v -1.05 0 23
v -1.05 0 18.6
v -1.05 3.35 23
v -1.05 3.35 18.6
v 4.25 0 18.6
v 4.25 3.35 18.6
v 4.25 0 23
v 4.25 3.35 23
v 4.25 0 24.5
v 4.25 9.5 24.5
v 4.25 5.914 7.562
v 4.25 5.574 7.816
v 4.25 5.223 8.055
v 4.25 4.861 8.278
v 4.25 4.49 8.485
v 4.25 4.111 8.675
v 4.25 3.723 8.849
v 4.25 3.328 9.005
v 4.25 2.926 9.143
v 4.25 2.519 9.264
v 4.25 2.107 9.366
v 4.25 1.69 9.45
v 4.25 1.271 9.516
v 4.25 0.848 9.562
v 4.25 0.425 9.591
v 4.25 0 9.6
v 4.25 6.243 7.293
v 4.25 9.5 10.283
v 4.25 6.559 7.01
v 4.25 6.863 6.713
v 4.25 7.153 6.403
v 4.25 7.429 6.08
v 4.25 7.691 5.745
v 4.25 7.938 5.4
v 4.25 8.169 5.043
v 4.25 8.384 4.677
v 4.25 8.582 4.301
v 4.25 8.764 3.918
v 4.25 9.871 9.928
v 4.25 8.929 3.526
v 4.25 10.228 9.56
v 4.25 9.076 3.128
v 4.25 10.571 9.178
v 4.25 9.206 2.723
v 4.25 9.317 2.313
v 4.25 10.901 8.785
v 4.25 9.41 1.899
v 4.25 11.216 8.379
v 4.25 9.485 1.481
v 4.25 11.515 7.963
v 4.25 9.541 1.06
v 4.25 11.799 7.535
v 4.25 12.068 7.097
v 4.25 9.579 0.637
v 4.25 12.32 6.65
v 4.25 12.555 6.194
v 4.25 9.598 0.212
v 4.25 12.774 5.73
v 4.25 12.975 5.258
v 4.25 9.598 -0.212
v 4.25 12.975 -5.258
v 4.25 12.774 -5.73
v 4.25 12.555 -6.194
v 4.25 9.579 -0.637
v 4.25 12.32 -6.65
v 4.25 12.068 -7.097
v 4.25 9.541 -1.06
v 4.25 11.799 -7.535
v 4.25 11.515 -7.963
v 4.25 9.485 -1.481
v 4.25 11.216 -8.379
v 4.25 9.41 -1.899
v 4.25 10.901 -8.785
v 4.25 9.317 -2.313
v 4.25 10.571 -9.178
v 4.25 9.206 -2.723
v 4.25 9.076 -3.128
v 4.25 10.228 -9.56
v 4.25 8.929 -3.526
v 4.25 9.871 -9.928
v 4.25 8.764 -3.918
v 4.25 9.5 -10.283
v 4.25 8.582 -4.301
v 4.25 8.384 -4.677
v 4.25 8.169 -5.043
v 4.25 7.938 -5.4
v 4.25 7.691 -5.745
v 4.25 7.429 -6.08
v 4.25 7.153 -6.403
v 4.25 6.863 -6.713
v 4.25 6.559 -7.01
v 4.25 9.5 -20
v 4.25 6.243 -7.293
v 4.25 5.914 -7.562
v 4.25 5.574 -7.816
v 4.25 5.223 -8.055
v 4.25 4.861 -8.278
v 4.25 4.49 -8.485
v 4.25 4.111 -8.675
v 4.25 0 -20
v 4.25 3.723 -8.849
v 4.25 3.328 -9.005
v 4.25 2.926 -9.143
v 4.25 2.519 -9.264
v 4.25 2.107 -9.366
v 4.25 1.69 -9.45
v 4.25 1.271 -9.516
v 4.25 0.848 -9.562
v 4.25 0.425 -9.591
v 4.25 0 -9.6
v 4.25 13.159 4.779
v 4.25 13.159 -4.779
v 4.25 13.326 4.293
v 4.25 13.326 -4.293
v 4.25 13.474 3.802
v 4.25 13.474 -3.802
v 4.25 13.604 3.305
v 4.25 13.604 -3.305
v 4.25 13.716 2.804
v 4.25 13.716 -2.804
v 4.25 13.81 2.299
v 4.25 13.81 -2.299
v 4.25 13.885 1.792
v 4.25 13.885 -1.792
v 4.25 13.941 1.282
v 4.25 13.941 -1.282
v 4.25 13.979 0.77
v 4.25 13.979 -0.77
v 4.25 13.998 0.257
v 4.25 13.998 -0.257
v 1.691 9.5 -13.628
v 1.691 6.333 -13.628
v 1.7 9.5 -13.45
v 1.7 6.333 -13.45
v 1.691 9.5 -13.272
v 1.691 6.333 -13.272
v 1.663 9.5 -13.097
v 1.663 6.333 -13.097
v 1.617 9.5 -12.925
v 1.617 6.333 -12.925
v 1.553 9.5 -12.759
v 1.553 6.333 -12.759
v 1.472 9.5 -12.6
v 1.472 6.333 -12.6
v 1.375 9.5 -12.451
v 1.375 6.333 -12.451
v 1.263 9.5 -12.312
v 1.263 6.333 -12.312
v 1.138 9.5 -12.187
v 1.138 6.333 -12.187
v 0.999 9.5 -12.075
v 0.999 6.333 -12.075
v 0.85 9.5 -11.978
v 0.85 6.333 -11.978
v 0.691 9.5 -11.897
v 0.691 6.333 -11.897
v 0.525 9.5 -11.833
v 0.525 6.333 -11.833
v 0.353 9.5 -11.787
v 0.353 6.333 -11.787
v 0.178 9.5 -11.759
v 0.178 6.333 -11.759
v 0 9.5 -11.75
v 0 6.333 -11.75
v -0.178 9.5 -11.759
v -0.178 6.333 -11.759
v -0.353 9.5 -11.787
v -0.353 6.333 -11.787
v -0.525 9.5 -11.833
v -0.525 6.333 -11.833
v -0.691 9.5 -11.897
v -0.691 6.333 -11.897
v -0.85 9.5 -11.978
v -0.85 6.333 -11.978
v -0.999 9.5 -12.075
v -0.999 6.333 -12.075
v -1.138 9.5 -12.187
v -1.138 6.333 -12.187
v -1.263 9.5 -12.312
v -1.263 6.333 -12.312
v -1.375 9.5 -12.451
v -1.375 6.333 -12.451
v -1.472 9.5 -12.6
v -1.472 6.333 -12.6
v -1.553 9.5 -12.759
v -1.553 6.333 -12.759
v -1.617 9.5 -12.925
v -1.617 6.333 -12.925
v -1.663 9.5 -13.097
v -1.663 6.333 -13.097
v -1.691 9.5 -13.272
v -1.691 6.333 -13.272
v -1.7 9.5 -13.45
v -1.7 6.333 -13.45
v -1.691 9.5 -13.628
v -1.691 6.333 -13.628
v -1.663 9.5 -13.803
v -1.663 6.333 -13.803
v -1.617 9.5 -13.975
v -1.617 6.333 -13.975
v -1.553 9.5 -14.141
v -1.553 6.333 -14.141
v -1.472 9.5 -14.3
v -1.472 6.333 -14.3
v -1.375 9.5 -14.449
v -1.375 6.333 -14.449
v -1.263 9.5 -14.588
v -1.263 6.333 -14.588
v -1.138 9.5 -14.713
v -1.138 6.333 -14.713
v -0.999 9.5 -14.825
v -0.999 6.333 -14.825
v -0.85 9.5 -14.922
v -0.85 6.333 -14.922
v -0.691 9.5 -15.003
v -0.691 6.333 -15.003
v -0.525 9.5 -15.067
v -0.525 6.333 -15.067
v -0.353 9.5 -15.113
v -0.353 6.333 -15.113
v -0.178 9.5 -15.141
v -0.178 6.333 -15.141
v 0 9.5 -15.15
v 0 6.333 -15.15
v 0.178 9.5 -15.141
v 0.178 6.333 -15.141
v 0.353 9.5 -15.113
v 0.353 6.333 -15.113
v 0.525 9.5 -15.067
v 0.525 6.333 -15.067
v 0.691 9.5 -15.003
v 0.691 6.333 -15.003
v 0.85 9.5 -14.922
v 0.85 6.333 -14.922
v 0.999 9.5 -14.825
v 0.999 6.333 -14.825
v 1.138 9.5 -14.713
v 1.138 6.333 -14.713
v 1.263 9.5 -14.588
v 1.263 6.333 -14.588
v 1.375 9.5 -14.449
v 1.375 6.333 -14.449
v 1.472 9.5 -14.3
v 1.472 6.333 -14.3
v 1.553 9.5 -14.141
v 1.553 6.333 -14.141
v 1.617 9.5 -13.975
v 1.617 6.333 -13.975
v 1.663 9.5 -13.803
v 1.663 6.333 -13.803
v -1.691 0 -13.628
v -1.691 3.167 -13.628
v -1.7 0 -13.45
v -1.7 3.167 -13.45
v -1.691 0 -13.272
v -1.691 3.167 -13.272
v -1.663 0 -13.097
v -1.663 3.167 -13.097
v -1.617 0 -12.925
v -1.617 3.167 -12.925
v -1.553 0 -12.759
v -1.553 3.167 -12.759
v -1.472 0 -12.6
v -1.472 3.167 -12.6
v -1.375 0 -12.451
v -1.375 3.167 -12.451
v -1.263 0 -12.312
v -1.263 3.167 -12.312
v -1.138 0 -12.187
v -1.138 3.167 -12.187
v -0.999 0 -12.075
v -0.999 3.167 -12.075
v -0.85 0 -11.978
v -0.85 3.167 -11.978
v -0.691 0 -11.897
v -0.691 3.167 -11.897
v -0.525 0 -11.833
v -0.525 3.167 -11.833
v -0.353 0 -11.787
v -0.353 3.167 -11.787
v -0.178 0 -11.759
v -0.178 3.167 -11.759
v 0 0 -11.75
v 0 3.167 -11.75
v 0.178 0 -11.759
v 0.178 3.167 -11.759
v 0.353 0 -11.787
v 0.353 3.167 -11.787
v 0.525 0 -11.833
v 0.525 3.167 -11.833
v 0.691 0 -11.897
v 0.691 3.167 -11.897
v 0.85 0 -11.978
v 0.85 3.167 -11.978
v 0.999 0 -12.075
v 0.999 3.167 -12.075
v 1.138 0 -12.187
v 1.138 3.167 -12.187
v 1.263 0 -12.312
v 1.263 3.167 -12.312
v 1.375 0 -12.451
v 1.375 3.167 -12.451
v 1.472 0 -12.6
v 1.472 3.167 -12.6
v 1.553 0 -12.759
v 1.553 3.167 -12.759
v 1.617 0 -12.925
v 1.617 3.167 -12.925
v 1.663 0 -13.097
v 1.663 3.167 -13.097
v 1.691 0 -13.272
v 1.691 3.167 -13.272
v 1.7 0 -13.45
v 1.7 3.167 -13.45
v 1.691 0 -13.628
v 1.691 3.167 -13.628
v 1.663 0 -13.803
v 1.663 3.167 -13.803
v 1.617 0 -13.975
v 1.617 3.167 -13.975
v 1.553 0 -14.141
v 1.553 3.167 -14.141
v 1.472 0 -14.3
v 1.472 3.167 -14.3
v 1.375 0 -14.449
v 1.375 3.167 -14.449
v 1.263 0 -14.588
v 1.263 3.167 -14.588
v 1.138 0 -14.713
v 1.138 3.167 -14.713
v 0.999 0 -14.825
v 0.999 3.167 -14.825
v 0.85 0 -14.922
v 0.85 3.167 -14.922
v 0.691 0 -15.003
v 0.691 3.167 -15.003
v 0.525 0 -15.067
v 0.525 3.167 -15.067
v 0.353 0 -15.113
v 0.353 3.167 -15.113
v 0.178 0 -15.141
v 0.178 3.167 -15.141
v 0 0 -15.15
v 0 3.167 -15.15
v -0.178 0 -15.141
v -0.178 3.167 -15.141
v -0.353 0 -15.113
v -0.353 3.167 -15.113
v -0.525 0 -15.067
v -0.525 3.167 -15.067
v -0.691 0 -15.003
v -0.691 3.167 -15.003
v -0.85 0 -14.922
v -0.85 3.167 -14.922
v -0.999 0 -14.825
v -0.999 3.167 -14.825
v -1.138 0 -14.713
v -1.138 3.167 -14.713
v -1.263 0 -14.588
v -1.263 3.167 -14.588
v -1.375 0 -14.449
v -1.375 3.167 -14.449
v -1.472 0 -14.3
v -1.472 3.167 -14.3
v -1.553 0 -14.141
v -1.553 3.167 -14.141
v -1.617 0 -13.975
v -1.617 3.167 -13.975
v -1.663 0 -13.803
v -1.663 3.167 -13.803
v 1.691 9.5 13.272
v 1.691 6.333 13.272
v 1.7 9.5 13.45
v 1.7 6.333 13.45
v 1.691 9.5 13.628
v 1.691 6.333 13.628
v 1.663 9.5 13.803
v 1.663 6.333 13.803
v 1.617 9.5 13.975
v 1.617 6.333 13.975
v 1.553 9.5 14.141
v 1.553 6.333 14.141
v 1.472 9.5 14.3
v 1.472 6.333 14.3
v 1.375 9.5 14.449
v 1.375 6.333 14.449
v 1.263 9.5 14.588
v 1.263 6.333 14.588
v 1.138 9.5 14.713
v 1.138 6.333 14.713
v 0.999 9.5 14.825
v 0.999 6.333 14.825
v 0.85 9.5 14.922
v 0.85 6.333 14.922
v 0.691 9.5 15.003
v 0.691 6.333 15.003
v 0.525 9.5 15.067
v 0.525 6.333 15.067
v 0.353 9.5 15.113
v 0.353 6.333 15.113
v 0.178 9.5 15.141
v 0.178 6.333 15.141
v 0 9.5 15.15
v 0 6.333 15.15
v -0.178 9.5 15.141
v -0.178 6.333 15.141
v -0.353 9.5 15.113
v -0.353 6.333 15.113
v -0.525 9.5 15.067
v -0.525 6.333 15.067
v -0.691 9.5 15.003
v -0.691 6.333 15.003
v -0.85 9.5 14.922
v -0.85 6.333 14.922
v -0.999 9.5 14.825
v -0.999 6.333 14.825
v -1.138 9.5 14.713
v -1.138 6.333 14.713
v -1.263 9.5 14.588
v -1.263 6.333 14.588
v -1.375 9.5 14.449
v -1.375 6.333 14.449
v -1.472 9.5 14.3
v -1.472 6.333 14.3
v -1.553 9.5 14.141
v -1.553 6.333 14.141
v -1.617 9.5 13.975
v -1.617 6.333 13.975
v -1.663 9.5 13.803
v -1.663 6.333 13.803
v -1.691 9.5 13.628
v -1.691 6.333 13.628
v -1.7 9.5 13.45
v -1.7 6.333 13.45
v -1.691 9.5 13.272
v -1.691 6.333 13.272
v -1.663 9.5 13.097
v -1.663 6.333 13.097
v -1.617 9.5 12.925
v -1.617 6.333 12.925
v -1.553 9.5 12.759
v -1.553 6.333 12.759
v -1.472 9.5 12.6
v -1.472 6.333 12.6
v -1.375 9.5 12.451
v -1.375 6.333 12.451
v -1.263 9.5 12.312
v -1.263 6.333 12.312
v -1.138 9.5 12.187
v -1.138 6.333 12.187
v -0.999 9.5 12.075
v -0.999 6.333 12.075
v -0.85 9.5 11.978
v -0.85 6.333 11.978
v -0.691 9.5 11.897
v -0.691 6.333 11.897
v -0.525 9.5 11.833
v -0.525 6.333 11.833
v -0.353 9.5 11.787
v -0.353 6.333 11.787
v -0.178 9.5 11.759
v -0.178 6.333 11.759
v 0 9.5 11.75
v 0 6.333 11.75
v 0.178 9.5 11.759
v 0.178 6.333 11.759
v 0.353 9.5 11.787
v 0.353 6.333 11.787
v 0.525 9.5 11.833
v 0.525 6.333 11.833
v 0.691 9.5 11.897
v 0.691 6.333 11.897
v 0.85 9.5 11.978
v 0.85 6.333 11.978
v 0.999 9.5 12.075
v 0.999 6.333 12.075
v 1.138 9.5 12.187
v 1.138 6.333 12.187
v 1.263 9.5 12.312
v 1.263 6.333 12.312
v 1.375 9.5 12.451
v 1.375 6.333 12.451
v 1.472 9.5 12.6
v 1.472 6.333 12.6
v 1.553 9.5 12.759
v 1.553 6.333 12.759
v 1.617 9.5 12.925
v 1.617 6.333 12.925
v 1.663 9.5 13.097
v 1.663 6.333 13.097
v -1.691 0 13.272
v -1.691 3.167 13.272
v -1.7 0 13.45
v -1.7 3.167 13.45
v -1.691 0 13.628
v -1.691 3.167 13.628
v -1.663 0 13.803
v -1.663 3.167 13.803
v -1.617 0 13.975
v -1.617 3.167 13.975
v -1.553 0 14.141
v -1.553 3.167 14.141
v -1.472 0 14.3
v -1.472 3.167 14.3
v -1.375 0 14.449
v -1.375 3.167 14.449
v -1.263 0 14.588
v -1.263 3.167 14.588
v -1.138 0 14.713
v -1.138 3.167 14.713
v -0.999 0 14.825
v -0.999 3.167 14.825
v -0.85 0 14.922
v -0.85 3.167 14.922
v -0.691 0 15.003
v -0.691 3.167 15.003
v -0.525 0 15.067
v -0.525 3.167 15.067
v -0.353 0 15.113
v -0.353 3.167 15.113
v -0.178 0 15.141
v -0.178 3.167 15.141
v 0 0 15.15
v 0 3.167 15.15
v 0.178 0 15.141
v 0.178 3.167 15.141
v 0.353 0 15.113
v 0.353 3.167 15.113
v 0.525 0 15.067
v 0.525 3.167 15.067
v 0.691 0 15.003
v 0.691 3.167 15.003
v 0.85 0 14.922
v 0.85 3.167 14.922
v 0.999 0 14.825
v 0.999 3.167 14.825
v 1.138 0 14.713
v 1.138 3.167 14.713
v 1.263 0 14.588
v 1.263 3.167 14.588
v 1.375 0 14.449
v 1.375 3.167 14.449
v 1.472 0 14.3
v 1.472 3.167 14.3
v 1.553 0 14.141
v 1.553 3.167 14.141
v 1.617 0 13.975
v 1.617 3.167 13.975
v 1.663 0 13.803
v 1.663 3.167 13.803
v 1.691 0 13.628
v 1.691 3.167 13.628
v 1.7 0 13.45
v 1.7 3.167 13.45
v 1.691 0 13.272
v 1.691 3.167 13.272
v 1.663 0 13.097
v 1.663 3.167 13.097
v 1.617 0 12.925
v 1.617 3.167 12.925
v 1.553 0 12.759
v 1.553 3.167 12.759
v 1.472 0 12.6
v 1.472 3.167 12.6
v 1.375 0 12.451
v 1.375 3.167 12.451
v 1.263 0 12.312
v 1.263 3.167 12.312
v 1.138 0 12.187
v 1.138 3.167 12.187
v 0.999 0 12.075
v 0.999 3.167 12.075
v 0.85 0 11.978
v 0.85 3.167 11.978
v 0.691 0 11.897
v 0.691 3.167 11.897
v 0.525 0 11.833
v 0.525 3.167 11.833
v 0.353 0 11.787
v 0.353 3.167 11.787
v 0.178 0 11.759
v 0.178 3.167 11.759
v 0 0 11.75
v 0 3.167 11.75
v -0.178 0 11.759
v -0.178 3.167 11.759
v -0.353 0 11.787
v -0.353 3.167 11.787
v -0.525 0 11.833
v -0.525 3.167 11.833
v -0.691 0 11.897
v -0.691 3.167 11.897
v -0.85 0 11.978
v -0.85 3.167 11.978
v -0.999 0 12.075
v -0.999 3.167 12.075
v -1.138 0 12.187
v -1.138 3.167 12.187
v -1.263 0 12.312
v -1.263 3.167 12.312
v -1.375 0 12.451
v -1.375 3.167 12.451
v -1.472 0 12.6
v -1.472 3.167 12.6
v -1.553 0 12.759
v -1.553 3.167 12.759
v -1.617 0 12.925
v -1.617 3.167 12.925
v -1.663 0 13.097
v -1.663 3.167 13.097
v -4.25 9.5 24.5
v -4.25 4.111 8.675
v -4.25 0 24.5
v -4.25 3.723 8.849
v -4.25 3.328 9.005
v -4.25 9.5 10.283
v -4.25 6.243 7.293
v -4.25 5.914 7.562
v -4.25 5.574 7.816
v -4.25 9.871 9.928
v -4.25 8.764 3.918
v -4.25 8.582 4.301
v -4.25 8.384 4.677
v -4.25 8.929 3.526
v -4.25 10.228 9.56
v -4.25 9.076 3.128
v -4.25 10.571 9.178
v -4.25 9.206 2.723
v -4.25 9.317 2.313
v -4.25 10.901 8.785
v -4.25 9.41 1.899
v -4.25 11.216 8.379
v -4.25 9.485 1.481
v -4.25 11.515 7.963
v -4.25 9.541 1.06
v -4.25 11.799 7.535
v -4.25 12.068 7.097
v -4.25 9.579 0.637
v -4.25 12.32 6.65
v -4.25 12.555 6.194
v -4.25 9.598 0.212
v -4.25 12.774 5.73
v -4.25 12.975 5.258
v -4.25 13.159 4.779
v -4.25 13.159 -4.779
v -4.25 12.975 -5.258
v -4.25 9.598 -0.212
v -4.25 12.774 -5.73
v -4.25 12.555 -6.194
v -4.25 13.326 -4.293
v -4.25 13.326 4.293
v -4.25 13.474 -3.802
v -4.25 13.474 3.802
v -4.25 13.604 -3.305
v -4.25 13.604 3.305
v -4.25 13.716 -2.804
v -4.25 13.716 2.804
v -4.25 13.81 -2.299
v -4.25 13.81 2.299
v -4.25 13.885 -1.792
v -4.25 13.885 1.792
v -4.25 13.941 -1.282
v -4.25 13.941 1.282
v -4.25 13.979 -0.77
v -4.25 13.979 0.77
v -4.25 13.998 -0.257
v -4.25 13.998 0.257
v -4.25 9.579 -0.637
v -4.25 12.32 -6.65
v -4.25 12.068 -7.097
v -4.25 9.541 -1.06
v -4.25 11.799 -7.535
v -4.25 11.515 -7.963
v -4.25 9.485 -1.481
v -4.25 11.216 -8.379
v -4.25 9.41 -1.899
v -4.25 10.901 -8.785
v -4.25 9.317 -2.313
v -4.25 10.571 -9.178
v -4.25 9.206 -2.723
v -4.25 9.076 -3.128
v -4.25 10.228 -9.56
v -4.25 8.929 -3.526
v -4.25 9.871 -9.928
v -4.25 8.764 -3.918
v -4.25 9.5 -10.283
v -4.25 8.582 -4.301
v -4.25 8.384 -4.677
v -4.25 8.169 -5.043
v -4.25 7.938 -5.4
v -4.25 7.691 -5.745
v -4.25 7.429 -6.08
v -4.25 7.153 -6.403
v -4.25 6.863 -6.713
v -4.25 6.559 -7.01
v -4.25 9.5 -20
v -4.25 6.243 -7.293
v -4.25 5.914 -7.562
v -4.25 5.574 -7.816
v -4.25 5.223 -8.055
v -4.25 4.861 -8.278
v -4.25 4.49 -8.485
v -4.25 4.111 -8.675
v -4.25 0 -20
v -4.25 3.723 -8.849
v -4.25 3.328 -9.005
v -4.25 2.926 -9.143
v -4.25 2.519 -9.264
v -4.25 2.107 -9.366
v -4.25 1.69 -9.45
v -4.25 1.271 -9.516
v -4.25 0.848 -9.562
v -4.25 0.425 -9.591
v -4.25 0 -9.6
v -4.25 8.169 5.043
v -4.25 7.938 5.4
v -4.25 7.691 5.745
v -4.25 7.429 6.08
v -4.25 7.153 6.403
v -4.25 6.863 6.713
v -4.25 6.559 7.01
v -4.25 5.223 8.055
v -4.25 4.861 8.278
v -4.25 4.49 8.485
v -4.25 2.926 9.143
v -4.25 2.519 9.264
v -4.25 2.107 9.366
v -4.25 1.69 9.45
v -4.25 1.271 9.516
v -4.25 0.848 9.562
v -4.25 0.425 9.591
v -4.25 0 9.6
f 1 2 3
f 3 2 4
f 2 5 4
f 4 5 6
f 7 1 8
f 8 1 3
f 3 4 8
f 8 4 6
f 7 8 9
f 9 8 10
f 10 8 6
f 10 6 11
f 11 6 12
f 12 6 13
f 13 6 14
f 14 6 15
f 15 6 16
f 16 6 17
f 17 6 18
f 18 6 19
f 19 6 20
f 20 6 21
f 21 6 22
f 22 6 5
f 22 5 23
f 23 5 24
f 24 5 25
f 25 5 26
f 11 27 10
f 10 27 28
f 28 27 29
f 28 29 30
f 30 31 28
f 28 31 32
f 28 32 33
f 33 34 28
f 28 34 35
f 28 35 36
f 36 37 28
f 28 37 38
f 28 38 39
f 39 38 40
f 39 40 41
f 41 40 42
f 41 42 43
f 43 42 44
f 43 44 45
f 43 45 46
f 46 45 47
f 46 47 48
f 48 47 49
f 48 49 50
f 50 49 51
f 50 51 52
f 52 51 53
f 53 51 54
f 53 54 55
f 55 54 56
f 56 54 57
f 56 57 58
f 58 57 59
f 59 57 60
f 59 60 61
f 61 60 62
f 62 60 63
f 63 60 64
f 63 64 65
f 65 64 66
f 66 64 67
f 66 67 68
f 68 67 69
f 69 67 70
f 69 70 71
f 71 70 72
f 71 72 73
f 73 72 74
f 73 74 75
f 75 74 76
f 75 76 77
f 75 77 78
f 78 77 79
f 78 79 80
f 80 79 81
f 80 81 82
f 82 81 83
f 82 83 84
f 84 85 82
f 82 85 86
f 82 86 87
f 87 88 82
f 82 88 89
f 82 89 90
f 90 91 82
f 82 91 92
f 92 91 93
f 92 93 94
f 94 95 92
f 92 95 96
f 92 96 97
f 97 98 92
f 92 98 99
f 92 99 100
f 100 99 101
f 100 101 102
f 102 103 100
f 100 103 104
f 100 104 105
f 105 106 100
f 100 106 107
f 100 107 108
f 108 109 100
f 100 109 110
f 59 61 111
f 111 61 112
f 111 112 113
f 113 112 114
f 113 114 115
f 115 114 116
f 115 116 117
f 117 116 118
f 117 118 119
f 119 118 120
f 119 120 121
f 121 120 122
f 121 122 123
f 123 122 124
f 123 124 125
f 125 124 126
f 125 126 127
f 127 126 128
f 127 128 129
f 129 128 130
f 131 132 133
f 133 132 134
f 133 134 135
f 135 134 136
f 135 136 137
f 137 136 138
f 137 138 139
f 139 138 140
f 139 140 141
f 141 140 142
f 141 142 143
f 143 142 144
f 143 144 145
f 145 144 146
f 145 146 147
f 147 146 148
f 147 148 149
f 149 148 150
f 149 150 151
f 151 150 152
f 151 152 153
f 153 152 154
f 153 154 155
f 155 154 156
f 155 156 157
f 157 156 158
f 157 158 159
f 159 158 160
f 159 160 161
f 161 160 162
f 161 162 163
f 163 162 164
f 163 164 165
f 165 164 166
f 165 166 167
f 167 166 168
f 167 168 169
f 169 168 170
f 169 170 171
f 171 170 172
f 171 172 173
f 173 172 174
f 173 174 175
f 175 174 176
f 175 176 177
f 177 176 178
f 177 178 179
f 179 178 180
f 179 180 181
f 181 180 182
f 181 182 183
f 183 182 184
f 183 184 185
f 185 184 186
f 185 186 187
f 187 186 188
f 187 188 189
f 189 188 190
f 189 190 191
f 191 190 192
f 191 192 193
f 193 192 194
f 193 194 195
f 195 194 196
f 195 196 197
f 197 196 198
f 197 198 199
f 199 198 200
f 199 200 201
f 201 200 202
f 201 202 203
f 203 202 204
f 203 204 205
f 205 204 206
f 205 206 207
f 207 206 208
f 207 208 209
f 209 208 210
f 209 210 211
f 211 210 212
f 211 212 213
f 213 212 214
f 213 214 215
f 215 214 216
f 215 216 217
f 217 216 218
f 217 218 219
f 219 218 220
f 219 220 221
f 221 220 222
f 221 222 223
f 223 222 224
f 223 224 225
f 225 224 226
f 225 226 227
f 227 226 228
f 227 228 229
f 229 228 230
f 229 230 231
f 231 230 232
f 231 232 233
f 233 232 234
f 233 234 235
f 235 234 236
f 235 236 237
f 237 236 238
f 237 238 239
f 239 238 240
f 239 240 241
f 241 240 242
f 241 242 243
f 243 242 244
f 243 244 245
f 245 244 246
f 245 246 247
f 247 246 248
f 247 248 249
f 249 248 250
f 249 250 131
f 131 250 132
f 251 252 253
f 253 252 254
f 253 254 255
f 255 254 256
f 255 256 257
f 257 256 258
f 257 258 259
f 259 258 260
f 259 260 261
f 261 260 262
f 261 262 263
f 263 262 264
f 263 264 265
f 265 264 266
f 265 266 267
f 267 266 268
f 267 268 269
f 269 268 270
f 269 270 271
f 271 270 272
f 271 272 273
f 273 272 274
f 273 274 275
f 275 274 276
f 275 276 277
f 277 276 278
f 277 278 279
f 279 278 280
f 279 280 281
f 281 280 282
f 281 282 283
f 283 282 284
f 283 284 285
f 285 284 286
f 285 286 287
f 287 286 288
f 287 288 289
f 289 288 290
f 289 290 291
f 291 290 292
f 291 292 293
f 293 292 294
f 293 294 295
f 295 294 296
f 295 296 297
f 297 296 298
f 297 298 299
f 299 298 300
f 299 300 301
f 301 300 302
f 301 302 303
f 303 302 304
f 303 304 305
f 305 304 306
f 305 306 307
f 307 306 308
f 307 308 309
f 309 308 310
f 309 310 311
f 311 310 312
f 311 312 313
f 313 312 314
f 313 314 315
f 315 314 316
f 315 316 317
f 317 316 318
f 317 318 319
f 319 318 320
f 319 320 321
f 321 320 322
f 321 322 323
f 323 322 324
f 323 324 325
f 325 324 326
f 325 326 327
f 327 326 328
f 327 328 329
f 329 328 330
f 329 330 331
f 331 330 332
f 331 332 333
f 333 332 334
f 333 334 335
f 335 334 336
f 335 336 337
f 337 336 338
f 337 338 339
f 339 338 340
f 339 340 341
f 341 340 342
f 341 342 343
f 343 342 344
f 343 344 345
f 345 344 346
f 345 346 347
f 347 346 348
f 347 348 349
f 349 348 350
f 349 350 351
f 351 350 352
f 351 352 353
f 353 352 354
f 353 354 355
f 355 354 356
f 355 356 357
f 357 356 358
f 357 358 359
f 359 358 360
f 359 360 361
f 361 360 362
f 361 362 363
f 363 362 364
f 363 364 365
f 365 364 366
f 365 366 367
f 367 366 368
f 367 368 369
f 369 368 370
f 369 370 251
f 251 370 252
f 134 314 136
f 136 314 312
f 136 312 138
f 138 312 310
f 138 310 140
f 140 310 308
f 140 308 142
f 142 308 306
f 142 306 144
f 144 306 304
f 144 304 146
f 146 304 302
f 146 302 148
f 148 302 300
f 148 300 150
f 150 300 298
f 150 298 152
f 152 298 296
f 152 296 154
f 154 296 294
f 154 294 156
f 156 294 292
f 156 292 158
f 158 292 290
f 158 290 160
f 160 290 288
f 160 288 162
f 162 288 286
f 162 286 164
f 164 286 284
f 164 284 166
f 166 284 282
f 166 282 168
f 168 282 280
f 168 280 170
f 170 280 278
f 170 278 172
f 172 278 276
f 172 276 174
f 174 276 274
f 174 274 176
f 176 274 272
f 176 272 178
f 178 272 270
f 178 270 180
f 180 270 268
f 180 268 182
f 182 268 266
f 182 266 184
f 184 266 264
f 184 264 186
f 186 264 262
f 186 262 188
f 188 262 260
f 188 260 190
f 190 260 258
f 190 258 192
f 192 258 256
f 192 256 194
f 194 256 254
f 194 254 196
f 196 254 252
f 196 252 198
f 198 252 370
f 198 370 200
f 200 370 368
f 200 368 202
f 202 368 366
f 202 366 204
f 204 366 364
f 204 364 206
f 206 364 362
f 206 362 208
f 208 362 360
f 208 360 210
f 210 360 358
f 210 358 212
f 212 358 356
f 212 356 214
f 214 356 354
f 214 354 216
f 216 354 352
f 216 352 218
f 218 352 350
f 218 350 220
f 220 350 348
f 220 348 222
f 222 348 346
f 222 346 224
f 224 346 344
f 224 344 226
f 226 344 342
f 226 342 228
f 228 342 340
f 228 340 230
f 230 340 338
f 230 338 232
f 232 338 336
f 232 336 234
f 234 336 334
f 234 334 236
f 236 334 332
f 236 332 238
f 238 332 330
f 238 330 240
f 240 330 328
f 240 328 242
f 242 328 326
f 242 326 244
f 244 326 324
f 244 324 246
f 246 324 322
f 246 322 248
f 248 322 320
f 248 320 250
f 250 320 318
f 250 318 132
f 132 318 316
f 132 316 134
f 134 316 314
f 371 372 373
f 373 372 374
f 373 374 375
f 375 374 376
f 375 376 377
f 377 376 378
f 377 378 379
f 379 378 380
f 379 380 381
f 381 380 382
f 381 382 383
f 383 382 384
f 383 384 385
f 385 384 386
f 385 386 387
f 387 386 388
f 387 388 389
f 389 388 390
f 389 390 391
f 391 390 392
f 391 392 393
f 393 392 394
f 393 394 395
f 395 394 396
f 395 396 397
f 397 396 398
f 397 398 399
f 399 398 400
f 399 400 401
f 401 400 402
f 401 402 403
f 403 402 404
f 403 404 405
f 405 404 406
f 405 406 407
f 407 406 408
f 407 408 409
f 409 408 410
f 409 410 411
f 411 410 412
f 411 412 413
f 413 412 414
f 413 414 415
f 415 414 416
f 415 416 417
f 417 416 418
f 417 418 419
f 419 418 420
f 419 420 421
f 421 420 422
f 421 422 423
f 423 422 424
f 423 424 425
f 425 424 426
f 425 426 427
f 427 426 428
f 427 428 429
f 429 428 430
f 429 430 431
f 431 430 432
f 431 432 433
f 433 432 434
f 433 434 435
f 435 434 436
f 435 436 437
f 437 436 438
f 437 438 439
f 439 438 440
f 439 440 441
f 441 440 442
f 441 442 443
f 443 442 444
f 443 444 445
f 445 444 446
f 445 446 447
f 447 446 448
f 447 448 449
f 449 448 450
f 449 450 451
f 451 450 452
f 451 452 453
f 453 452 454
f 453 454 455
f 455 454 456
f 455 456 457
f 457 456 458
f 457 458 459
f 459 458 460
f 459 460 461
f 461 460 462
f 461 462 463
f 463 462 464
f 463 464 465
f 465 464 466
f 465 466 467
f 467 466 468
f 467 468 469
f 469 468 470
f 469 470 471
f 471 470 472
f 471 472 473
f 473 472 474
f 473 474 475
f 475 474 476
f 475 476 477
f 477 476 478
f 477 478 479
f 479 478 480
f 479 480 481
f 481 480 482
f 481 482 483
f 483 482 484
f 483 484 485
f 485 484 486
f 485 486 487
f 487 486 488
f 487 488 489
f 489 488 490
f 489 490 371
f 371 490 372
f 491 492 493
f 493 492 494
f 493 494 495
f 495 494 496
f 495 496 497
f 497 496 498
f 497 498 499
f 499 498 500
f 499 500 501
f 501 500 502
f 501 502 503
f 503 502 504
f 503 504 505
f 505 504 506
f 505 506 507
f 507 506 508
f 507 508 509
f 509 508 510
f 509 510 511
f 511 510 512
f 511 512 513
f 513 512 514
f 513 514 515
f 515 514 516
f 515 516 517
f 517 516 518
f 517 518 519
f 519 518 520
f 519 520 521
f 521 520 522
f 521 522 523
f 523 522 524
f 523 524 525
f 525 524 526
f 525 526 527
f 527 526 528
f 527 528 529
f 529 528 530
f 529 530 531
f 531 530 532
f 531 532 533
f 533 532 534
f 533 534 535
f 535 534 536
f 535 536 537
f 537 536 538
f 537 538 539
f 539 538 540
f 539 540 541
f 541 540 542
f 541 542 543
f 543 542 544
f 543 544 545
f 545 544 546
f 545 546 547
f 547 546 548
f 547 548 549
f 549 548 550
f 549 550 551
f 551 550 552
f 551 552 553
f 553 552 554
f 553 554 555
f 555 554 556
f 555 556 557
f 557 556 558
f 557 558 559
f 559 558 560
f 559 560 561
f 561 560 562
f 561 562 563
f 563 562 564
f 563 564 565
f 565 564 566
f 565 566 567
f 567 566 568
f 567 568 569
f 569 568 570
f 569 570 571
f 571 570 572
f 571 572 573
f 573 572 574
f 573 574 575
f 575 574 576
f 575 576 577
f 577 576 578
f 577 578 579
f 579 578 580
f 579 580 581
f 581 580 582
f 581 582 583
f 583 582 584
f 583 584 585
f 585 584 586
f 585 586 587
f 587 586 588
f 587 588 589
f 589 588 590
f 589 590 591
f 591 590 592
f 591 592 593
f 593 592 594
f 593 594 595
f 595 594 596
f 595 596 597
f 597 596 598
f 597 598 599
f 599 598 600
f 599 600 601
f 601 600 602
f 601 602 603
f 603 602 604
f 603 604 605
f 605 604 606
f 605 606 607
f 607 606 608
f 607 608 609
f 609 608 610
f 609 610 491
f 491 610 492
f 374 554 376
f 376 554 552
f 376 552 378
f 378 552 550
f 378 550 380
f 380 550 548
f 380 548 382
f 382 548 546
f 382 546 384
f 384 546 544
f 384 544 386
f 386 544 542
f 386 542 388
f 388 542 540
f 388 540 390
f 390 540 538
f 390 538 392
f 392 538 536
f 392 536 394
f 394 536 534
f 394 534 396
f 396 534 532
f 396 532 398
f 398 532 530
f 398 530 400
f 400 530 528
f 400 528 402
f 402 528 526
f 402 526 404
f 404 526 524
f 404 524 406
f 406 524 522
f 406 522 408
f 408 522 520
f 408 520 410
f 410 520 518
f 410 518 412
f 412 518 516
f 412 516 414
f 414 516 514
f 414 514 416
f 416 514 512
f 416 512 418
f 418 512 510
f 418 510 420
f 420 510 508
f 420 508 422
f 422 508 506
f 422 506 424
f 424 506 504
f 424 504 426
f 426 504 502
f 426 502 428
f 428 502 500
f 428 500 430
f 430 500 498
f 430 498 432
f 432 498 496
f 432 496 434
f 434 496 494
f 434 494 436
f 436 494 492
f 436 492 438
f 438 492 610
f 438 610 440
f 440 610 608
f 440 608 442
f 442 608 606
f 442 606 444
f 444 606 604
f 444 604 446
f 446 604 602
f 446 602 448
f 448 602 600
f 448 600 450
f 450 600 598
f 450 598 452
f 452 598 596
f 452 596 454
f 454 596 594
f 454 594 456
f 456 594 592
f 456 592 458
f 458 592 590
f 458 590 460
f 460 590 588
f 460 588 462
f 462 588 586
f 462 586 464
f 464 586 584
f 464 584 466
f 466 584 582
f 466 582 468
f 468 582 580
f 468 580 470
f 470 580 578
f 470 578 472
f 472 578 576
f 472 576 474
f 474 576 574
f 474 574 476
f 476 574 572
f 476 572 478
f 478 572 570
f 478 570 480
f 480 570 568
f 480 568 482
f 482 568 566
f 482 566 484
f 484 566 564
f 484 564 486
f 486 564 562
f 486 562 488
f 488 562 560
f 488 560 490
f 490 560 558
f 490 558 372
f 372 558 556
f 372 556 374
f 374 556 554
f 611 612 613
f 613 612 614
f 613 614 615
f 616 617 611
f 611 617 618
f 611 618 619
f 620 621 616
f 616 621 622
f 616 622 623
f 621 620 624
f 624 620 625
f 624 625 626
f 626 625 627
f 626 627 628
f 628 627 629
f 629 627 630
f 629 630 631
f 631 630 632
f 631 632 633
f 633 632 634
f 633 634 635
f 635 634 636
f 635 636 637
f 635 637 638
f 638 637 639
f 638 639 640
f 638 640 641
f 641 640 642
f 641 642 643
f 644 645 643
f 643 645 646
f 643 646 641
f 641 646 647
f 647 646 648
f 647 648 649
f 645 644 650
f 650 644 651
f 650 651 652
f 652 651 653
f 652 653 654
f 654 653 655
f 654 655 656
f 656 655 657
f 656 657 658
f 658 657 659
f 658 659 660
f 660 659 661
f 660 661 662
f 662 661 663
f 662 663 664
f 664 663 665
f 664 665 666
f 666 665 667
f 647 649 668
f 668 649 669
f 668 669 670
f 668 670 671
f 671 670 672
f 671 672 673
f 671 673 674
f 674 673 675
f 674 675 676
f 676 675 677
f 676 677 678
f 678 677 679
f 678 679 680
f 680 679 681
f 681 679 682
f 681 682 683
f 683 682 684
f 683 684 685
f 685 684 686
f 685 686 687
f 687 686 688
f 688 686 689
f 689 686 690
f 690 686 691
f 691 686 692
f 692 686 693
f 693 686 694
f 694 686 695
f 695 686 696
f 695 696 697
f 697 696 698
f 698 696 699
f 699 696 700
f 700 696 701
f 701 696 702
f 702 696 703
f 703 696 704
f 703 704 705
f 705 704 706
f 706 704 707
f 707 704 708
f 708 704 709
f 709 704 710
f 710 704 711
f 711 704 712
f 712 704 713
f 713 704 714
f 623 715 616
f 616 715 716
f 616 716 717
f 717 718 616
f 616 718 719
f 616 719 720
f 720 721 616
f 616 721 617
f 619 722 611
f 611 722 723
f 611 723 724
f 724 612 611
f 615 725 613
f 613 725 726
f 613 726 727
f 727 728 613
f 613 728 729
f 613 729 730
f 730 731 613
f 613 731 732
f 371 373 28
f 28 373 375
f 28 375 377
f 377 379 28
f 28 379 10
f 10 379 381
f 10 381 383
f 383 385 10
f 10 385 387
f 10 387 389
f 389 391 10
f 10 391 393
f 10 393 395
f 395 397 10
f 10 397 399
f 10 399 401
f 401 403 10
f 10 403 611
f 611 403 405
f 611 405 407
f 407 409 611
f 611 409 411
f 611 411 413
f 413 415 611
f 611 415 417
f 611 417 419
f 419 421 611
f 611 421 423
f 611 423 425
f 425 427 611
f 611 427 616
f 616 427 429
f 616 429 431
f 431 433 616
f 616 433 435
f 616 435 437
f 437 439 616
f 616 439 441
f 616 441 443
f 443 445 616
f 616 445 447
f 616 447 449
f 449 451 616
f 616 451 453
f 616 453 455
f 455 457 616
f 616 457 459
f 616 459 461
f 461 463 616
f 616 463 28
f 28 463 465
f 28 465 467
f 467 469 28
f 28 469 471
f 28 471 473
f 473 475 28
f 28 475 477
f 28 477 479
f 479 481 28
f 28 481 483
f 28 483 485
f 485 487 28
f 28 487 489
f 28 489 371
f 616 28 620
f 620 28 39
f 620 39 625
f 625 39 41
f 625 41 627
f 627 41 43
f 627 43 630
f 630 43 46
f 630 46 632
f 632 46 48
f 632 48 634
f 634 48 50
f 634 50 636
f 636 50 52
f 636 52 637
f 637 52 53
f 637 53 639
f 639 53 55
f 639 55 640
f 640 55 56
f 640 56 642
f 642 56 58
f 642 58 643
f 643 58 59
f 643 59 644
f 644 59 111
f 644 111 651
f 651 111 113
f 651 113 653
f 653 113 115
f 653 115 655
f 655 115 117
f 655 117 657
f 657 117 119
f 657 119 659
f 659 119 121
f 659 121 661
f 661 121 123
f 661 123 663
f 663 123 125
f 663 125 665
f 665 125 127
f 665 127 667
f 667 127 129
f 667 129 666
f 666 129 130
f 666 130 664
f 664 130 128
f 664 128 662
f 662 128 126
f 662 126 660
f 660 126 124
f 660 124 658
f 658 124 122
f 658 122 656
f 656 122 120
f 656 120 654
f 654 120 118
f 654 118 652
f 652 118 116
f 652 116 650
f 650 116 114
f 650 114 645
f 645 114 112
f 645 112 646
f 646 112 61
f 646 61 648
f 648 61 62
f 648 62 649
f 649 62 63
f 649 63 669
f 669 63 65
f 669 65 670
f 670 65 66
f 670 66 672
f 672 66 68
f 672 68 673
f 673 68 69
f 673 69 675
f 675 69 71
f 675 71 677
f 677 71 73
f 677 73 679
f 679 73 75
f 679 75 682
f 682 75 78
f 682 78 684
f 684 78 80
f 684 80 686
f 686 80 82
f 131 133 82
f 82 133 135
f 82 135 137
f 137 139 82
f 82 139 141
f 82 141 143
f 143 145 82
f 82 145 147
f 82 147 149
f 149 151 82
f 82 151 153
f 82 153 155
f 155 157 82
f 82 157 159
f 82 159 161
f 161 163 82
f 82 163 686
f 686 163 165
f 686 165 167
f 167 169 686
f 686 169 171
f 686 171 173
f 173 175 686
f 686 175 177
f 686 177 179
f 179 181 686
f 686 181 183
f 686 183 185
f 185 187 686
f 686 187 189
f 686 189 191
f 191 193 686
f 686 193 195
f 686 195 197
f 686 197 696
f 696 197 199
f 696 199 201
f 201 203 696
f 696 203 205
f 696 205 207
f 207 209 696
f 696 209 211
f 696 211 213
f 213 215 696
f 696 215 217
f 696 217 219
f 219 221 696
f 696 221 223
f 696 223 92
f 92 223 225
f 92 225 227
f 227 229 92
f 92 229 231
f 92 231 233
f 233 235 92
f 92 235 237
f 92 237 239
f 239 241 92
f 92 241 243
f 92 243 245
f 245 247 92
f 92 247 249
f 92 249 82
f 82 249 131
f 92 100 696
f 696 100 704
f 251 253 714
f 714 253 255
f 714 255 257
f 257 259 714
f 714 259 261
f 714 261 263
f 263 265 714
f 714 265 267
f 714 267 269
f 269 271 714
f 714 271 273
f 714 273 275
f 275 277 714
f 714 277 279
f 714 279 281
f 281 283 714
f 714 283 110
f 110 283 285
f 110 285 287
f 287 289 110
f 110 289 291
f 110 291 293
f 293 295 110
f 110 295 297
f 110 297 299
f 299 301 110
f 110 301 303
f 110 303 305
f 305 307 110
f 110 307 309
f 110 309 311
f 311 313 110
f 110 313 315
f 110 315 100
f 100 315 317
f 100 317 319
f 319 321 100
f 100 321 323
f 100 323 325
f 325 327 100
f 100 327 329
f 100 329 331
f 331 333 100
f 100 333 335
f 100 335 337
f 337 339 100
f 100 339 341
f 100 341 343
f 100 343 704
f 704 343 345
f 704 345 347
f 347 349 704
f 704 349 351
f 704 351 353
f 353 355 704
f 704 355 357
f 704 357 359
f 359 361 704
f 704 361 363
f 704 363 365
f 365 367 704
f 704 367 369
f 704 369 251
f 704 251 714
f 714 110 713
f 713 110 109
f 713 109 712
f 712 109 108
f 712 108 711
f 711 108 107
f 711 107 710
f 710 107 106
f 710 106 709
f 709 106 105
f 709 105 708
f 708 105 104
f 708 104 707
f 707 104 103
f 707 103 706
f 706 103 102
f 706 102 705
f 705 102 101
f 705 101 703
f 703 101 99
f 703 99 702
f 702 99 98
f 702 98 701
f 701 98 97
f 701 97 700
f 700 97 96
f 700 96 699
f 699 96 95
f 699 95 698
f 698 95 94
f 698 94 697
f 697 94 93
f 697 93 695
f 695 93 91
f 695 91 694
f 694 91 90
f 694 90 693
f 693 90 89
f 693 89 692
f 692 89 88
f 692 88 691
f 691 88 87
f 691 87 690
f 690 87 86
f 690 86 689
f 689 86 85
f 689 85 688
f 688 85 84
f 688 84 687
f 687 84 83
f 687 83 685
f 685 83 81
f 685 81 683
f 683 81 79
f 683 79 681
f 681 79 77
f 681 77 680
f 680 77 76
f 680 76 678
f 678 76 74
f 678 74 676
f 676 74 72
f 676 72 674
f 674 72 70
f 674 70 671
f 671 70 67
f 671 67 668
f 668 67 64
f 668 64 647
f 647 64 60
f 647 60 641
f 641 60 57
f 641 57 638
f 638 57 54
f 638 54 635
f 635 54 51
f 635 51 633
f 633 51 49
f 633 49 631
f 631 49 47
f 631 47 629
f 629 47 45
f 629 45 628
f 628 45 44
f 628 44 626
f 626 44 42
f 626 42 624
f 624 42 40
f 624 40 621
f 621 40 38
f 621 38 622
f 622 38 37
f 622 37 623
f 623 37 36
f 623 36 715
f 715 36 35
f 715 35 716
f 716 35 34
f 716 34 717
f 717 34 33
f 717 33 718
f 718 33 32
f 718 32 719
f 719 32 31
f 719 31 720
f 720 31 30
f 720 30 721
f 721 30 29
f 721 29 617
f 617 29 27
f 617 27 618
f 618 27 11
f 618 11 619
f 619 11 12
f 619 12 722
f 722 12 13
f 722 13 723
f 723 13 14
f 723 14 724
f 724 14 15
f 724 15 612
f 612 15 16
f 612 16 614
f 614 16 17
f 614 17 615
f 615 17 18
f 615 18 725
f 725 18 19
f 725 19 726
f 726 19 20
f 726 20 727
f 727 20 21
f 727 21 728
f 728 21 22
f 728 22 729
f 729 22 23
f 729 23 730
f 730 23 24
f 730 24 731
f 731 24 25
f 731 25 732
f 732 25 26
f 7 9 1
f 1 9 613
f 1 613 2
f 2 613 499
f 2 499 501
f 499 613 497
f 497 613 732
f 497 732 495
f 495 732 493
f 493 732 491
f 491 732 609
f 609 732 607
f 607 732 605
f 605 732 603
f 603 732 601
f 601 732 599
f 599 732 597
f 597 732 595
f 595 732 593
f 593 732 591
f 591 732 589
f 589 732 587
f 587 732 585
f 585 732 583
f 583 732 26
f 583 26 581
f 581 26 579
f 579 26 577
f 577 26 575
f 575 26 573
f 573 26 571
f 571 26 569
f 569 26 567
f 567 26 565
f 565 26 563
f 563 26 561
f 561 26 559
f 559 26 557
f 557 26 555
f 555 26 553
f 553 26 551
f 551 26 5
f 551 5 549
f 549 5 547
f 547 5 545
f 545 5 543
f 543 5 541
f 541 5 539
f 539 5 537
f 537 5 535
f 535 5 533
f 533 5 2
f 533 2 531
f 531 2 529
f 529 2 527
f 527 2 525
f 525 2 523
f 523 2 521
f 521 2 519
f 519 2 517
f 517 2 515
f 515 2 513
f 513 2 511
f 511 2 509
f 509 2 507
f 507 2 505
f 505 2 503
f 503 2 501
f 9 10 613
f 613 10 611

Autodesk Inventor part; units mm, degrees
ref_plane "YZ Plane" through (0, 0, 0) normal (1, 0, 0) x (0, 1, 0)
ref_plane "XZ Plane" through (0, 0, 0) normal (0, 1, 0) x (-1, 0, 0)
ref_plane "XY Plane" through (0, 0, 0) normal (0, 0, 1) x (1, 0, 0)
sketch "Skizze10" plane through (0, 0, 0) normal (1, 0, 0) x (0, 1, 0)
  arc A0 (0, -9.6) -> (0, 9.6) centre (0, 0) ccw
  line L0 (0, 0) -> (0, -20)
  line L1 (0, 0) -> (0, 24.5)
  line L2 (-2.8, 0) -> (16.8, 0) projected
  line L3 (0, 24.5) -> (9.5, 24.5)
  line L4 (9.5, 24.5) -> (9.5, 10.2835)
  arc A1 (9.5, -10.2835) -> (9.5, 10.2835) centre (0, 0) ccw
  line L5 (9.5, -10.2835) -> (9.5, -20)
  line L6 (0, -20) -> (9.5, -20)
  point P0 (0, 9.6)
  dimension "d79" = 9.6
  dimension "d80" = 20
  dimension "d81" = 24.5
  dimension "d84" = 9.5
  dimension "d85" = 14
extrude "Extrusion9" add sketch "Skizze10" along normal mid plane 8.5 contours A0 L2 A1 L5 L6 L0 | A0 L1 L3 L4 A1 L2
sketch "Skizze11" plane through (0, 0, 0) normal (0, 1, 0) x (-1, 0, 0)
  circle A0 centre (0, -13.45) radius 1.7
  circle A1 centre (0, 13.45) radius 1.7
  line L0 (-4.25, -20) -> (-4.25, -10.2835) projected
  line L1 (0, -27.03) -> (0, 22.18) projected
  point P0 (0, 0)
  dimension "d88" = 13.45
  dimension "d89" = 13.45
  dimension "d90" = 3.4
  dimension "d91" = 3.4
extrude "Extrusion10" cut sketch "Skizze11" along normal through all
sketch "Skizze12" plane through (0, 0, 0) normal (0, 1, 0) x (-1, 0, 0)
  line L0 (1.05, 23) -> (-4.25, 23)
  line L1 (-4.25, 18.6) -> (1.05, 18.6)
  line L2 (2.11, 0) -> (-5.31, 0) projected
  line L3 (-4.25, 10.2835) -> (-4.25, 24.5) projected
  line L4 (1.05, 23) -> (1.05, 18.6)
  point P0 (0, 0)
  dimension "d94" = 4.4
  dimension "d95" = 5.3
  dimension "d99" = 18.6
extrude "Extrusion11" cut sketch "Skizze12" along normal blind 3.35
properties part number "Lagerhalter2"
